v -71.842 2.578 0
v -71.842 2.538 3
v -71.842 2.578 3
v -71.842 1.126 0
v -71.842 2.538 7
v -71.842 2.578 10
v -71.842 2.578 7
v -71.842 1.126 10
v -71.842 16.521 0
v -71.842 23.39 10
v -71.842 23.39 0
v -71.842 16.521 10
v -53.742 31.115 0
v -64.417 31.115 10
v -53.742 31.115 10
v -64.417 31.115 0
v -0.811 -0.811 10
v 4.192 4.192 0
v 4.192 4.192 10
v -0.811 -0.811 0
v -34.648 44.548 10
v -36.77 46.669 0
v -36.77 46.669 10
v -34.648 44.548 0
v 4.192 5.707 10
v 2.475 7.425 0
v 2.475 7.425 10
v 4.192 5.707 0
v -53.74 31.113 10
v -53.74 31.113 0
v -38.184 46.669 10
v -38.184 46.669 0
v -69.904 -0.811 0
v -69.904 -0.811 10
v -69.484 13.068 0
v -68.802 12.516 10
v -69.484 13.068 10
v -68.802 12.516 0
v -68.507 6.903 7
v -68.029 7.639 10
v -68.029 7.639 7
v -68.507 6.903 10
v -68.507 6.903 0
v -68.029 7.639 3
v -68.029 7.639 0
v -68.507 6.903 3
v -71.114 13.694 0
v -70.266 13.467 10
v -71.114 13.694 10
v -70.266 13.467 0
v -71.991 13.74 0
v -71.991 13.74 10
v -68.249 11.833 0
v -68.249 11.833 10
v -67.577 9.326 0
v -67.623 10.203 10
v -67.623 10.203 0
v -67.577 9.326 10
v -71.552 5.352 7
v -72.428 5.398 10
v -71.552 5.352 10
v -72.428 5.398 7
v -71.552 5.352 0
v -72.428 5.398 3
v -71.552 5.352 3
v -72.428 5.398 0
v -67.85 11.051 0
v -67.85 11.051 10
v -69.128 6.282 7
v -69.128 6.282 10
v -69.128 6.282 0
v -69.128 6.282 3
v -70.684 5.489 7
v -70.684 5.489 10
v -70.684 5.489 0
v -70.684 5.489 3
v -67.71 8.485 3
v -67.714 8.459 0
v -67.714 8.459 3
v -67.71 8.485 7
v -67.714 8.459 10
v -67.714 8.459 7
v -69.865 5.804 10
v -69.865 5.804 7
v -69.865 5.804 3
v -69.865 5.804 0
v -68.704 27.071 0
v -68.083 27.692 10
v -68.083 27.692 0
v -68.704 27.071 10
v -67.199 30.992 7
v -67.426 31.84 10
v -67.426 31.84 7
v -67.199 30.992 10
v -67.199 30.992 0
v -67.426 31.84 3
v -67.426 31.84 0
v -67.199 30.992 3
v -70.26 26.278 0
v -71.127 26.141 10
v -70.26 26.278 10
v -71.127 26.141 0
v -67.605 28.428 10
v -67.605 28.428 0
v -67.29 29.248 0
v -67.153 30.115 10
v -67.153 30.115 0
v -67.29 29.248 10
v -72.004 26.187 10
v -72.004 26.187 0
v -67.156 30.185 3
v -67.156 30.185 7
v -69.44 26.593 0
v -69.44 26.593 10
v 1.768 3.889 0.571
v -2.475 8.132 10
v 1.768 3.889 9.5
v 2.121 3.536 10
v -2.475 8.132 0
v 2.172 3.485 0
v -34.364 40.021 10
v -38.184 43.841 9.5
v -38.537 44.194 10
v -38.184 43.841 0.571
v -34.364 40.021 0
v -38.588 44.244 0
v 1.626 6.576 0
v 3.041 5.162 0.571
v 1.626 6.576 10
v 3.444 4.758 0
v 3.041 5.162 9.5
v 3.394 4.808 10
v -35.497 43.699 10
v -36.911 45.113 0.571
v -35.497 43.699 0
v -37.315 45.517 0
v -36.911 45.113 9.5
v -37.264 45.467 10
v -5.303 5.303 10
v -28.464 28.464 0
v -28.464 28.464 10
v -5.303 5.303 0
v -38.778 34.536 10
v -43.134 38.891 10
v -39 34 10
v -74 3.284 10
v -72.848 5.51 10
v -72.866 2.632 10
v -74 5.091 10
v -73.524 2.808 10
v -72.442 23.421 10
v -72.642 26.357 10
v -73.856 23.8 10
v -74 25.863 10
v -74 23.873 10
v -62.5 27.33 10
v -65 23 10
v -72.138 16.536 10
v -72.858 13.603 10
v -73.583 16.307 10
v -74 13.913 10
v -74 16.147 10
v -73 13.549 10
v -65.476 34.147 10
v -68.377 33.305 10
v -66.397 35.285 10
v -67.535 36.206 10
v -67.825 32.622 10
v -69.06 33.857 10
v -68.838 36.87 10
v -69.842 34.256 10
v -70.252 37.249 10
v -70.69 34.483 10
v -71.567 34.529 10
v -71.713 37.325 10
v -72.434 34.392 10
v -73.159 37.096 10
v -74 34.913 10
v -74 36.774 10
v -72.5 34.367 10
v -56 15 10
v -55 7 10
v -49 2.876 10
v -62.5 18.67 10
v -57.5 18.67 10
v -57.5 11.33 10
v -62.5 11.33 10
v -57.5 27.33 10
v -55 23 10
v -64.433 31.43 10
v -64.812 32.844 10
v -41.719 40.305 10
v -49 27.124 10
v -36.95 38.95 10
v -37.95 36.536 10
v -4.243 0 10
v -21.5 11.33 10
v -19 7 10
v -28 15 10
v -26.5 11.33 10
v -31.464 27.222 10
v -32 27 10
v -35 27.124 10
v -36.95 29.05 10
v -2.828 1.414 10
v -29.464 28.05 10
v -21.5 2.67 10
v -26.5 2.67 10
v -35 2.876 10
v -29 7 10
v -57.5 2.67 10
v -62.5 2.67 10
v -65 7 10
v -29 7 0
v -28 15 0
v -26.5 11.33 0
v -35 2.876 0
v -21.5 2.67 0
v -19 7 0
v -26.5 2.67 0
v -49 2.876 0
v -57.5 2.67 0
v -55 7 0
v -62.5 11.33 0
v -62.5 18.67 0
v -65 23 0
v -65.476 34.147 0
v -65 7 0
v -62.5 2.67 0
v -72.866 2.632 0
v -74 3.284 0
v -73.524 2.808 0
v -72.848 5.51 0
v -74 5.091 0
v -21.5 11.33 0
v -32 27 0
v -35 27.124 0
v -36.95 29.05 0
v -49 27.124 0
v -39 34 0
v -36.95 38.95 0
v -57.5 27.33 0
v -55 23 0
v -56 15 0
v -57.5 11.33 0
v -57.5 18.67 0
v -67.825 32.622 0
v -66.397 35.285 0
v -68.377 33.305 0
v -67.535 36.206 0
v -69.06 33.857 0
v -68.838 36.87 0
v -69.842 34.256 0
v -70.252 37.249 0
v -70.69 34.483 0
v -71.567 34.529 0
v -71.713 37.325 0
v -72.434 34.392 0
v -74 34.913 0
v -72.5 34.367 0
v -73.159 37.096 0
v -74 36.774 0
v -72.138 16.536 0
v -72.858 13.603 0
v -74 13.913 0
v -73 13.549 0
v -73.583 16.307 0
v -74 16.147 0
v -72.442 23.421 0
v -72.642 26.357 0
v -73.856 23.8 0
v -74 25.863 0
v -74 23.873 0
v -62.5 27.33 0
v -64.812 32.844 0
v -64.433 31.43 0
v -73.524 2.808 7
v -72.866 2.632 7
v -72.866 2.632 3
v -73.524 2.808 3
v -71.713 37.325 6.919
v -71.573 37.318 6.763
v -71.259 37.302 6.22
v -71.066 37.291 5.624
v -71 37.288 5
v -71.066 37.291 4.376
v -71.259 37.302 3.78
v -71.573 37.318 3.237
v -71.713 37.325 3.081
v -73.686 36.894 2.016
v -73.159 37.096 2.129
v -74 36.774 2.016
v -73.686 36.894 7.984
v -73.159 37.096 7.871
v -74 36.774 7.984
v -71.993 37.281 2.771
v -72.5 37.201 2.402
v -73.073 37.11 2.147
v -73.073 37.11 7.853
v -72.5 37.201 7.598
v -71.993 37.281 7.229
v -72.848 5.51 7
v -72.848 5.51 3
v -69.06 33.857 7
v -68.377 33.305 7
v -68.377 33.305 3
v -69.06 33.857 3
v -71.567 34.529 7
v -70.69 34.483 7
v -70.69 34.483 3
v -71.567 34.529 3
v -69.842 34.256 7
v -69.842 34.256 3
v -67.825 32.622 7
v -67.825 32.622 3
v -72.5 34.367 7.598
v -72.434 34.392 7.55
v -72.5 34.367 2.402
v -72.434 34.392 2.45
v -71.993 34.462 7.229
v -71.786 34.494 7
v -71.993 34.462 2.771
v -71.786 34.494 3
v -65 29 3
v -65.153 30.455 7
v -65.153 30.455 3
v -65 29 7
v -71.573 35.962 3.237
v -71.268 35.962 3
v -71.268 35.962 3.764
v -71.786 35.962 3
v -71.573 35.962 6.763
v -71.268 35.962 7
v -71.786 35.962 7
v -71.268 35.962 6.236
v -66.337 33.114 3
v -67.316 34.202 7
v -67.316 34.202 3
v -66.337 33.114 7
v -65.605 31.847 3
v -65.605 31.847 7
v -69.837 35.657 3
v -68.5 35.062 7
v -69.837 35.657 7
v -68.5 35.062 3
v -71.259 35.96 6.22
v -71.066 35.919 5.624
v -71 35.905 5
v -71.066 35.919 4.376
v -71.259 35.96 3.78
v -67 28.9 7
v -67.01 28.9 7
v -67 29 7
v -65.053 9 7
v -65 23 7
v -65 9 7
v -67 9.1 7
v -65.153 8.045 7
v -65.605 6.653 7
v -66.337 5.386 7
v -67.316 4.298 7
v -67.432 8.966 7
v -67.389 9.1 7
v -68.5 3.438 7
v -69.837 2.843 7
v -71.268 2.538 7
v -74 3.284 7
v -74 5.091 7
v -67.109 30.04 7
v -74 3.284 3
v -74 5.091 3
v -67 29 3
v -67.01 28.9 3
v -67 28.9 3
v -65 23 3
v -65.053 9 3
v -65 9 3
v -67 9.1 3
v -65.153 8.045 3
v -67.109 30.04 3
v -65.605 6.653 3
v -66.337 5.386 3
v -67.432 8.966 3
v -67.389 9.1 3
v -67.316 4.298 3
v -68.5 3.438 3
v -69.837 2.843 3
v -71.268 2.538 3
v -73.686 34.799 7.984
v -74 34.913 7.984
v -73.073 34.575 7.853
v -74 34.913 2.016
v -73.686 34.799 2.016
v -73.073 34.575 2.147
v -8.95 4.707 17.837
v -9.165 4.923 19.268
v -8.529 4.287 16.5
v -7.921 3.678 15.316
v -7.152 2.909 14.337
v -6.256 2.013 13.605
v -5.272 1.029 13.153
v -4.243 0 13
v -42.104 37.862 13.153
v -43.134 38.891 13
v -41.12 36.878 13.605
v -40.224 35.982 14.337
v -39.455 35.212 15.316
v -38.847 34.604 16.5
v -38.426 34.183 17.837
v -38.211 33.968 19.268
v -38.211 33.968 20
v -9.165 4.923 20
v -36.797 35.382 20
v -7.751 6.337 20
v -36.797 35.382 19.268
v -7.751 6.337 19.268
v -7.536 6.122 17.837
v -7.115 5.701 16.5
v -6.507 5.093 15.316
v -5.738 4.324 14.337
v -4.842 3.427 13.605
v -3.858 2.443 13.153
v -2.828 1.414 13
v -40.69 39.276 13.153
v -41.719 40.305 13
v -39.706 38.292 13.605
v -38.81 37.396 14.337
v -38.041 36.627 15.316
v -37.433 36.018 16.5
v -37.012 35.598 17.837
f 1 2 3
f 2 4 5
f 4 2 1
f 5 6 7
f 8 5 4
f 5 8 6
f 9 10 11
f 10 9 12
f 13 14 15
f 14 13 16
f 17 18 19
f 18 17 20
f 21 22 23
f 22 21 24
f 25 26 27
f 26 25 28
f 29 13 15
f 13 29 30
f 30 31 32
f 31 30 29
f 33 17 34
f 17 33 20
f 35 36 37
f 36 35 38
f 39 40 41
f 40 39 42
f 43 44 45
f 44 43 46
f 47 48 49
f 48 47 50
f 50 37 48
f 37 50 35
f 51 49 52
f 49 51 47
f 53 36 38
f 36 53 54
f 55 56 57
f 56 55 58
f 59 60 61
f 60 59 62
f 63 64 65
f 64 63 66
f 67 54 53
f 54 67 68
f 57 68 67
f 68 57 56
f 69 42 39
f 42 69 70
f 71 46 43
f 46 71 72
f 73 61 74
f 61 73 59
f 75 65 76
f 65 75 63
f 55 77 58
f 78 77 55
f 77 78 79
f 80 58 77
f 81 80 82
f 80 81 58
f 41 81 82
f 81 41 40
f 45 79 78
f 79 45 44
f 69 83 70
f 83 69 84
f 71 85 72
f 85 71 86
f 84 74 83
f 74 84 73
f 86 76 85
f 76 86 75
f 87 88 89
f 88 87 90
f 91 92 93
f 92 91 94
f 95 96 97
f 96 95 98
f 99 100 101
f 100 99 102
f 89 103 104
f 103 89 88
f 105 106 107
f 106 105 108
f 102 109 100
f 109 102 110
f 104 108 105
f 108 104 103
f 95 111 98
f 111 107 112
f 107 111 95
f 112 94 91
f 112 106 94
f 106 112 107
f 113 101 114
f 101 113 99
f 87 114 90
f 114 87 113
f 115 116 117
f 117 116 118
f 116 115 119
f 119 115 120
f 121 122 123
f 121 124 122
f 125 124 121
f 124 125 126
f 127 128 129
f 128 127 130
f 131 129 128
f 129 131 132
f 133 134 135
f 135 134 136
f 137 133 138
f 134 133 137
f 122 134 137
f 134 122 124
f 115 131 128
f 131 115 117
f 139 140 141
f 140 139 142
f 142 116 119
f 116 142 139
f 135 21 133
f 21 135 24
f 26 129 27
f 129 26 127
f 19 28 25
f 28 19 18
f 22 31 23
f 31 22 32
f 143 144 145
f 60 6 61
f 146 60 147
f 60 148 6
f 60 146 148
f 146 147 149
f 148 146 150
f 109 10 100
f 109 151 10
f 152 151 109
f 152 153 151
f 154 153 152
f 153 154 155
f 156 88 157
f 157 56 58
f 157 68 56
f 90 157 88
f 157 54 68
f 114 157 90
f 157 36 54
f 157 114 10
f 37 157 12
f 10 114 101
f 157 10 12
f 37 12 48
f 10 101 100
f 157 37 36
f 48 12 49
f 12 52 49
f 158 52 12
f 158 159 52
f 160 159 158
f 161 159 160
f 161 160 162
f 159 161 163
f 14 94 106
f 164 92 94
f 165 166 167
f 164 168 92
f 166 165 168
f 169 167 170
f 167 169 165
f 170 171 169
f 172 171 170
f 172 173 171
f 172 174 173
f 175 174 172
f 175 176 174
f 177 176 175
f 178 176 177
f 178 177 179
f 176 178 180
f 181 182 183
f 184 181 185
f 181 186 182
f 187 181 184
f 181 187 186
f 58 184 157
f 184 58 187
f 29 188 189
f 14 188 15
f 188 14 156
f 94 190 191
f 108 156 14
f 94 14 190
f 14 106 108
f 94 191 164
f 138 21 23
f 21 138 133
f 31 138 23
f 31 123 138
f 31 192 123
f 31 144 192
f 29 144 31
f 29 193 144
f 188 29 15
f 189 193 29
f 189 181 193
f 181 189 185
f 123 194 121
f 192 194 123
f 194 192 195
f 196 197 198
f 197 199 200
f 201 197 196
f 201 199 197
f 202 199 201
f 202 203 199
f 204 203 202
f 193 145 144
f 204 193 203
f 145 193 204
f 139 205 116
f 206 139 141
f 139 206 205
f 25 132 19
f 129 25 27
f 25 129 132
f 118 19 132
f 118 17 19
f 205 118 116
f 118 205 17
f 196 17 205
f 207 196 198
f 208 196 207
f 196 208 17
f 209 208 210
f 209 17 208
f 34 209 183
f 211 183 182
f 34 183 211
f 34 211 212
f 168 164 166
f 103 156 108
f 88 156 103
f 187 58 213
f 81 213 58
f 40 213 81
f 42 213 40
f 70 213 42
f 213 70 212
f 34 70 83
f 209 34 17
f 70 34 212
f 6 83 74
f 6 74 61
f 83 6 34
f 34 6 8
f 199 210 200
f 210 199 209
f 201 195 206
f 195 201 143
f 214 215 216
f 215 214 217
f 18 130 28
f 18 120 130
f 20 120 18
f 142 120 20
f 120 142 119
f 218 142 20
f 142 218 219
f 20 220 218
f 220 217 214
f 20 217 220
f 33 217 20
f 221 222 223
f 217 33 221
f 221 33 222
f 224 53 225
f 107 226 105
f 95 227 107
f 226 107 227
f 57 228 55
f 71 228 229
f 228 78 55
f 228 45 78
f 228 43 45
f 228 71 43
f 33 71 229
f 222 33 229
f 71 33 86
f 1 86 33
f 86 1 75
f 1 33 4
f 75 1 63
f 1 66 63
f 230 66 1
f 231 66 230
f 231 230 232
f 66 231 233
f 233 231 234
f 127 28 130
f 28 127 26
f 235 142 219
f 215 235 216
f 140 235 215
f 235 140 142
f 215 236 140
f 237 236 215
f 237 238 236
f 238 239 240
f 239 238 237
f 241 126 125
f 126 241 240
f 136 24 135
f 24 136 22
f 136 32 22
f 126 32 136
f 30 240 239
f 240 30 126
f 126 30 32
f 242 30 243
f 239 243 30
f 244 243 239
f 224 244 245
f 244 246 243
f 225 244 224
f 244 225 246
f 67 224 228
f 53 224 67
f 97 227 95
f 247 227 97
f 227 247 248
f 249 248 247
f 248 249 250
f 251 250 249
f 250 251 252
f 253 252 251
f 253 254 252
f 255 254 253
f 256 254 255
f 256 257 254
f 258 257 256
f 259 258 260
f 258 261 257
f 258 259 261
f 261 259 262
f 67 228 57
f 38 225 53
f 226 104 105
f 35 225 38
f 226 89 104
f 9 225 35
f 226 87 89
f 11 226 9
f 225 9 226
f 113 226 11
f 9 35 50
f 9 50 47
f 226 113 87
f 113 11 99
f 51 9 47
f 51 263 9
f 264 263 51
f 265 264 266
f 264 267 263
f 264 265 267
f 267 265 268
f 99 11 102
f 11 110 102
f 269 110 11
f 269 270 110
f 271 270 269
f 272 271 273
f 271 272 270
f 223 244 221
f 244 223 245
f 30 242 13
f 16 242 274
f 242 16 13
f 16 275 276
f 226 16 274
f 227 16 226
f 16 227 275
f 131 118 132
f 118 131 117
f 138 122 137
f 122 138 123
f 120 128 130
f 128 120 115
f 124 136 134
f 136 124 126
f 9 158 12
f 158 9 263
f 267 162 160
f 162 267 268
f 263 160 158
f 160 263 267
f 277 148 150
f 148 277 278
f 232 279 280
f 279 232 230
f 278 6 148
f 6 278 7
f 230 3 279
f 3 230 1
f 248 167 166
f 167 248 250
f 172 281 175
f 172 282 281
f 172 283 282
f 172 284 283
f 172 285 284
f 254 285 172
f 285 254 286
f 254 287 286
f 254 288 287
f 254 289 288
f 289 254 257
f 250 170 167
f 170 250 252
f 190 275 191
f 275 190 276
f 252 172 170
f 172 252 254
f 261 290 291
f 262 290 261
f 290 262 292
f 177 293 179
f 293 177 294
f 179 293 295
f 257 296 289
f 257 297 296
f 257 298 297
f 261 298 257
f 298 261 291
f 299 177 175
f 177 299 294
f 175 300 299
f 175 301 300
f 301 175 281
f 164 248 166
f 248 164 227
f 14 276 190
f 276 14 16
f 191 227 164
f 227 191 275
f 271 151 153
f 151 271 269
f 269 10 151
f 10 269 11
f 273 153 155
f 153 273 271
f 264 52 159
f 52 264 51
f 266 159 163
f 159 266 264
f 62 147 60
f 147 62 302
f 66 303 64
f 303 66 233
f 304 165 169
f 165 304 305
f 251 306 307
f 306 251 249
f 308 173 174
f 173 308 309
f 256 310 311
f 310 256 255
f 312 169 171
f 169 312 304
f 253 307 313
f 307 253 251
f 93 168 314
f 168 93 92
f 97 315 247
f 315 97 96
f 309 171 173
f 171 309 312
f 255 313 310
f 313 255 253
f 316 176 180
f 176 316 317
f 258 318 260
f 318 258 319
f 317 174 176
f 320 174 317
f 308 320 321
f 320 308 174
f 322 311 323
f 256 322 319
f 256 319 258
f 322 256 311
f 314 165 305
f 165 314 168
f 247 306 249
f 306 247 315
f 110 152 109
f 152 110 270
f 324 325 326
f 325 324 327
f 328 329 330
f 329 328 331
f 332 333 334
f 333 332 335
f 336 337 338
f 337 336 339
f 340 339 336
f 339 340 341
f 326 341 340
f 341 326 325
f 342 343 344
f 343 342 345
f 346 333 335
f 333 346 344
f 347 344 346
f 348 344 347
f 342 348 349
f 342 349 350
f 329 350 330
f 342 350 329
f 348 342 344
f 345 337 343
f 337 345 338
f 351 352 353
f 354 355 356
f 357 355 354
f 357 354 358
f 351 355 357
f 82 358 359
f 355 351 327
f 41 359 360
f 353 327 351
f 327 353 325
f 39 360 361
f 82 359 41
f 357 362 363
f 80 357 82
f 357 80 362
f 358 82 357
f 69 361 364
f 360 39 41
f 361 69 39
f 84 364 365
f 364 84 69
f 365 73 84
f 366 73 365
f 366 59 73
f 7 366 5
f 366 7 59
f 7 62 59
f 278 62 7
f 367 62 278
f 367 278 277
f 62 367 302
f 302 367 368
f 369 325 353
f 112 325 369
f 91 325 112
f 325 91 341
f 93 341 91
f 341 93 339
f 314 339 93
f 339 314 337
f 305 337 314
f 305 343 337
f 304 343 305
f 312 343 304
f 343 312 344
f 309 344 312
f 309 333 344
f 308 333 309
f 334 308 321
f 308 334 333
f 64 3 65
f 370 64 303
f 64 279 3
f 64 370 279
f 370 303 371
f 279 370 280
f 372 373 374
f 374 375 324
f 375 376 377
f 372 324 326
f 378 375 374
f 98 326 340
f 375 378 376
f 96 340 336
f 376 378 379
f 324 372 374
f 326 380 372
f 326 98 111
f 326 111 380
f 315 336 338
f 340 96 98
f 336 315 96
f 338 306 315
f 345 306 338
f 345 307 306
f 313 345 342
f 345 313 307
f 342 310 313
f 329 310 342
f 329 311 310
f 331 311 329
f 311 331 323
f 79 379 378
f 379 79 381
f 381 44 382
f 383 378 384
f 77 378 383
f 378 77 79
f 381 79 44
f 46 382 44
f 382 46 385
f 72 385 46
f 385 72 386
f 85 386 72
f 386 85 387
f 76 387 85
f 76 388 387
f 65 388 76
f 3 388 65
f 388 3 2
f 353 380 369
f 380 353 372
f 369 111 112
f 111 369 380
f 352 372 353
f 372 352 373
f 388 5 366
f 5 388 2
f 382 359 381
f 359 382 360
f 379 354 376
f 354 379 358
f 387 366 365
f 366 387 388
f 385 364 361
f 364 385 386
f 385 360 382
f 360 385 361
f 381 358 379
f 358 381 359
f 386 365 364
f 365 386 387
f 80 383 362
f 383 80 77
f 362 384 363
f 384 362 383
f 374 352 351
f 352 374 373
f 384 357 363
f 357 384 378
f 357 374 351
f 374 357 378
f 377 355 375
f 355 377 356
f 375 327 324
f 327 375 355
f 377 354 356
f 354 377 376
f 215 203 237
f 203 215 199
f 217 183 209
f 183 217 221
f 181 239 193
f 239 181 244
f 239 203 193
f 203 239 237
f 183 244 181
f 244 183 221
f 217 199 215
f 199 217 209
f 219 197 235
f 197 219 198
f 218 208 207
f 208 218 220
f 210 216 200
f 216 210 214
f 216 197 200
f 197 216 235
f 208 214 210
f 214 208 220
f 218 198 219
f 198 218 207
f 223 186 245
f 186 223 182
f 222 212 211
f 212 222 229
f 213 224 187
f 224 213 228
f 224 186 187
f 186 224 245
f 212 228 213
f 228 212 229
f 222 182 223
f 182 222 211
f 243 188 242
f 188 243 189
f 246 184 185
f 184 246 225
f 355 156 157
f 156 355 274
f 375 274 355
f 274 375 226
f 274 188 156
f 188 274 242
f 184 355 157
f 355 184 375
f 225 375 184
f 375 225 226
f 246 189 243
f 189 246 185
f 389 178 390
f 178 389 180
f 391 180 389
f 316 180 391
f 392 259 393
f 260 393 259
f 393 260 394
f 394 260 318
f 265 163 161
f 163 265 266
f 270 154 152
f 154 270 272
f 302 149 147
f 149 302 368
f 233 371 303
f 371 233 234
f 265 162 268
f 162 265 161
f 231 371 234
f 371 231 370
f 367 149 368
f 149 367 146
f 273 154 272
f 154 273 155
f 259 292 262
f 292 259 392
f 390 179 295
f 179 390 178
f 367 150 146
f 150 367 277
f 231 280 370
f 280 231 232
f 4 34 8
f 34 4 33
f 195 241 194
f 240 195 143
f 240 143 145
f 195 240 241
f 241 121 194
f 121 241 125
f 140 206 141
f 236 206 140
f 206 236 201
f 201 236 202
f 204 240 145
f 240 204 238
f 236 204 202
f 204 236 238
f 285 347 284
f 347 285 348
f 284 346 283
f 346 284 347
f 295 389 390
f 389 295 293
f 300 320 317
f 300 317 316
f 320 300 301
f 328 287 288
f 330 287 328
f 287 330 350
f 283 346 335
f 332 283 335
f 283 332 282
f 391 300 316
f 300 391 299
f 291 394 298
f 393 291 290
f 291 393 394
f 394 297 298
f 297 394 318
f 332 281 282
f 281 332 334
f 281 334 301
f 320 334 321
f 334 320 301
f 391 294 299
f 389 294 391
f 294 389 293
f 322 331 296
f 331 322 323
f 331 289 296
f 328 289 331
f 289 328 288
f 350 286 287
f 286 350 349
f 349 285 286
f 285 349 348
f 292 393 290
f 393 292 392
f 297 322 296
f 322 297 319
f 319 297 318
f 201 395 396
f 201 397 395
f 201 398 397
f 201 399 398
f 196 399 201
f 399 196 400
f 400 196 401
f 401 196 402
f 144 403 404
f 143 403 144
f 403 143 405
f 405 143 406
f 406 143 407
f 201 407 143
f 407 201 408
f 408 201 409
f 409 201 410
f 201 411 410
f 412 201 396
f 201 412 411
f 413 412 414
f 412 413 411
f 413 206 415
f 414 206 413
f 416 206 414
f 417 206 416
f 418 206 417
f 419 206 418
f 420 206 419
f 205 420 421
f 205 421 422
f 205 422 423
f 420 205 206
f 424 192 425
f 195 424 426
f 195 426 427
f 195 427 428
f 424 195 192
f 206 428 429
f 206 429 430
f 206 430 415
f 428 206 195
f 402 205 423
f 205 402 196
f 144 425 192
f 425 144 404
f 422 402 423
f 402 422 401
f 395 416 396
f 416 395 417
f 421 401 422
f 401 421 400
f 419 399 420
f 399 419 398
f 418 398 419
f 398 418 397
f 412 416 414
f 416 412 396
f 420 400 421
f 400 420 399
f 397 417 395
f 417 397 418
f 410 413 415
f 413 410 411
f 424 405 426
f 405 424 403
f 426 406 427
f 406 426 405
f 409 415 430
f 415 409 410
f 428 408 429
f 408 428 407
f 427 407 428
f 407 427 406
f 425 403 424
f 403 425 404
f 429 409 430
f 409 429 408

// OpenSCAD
// file: lcd-support-A.scad
// PRUSA iteration3
// lcd-support-A
// GNU GPL v3
// Josef Průša <iam@josefprusa.cz> and contributors
// http://www.reprap.org/wiki/Prusa_Mendel
// http://prusamendel.org




module body(){

difference() {
    
    union(){
        translate( [ -55, -2 , 0 ] ) cube( [ 69 , 81 , 10 ] ); 
    }
    
    union (){

    // outer body shape
    translate( [ -69.6, 32, -1 ] ) rotate([0,0,45]) cube( [ 60 , 53 , 15 ] ); 
    translate( [ 13.7, 89.7, -1 ] ) rotate([0,0,135]) cube( [ 60 , 42 , 15 ] );
    translate( [ -19, -9, -1 ] ) cube( [ 60 , 9 , 15 ] );   
    translate( [ 7, -3, -1 ] ) cube( [ 60 , 68 , 16 ] );  
    translate( [ -16, 60, -1 ] ) cube( [ 60 , 50 , 15 ] );
    translate( [ -41, -45, -1 ] ) rotate([0,0,45]) cube( [ 60 , 80 , 13 ] );  
        
    // threaded rods opening
    translate( [ -44 , 57.5 , -1 ] ) cylinder( h = 17, r = 4.2, $fn=30);  
    translate( [ -29 , 71.9 , -1 ] ) cylinder( h = 17, r = 4.2, $fn=30);  

    // pcb cout out
    translate( [ 4 , 1.5 , -1 ] ) cube( [ 1.8 , 56.5 , 17 ] ); 
    translate( [ 0 , 7.5 , -1 ] ) cube( [ 5.8 , 44.5 , 17 ] ); 
    translate( [ 4.8 , 3.5 , -1 ] ) cube( [ 5.8 , 52.5 , 17 ] );

    translate( [ 8 , -5 , -1 ] ) rotate([0,0,45]) cube( [ 5 , 5 , 17 ] );
    translate( [ 8 , 58 , -1 ] ) rotate([0,0,45]) cube( [ 5 , 5 , 17 ] );
        
    }

    // pcb inserts
    translate( [ 4, 3 , 8 ] ) rotate([45,0,0]) cube( [ 1.8 , 5 , 5 ] ); 
    translate( [ 4, 56.5 , 8 ] ) rotate([45,0,0]) cube( [ 1.8 , 5 , 5 ] );     
    translate( [ 4, 3 , -5 ] ) rotate([45,0,0]) cube( [ 1.8 , 5 , 5 ] ); 
    translate( [ 4, 56.5 , -5 ] ) rotate([45,0,0]) cube( [ 1.8 , 5 , 5 ] );     
    
}

 
difference(){
    union(){
        translate( [ -44 , 57.5 , 0 ] ) cylinder( h = 10, r = 7, $fn=30); 
        translate( [ -29 , 71.9 , 0 ] ) cylinder( h = 10, r =7 , $fn=30); 
    }
        translate( [ -44 , 57.5 , -1 ] ) cylinder( h = 17, r = 4.2, $fn=30);
        translate( [ -29 , 71.9 , -1 ] ) cylinder( h = 17, r = 4.2, $fn=30);
}
}



module ziptie()
{
difference()
{
  union(){
    difference(){
        translate( [ -72 , 29 , 3 ] ) cylinder( h = 4, r = 7, $fn=30);
        translate( [ -72 , 29 , 3 ] ) cylinder( h = 4, r = 5, $fn=30);
    }
    difference(){
        translate( [ -72 , 9.5 , 3 ] ) cylinder( h = 4, r = 7, $fn=30);
        translate( [ -72 , 11 , 3 ] ) cylinder( h = 4, r = 5, $fn=30); 
    }
    }
    translate( [ -80 , 9.1 , 3 ] )  cube( [ 15 , 19.8 , 4 ] );  
    }
    
    translate( [ -67 , 9 , 3 ] )  cube( [ 2 , 20 , 4 ] ); 
}
    




difference() {
    
rotate([0,0,45]) body();

// lightening holes
translate( [ -42 , 15 , -1 ] ) cylinder( h = 15, r = 14, $fn=6);  
translate( [ -24 , 7 , -1 ] ) cylinder( h = 15, r = 5, $fn=6);  
translate( [ -60 , 7 , -1 ] ) cylinder( h = 15, r = 5, $fn=6);  
translate( [ -60 , 23 , -1 ] ) cylinder( h = 15, r = 5, $fn=6);  
    
// threaded rods corners
translate( [ -71 , 28.5 , -1 ] ) rotate([0,0,70]) cube( [ 5 , 10 , 15 ] );   
translate( [ -71 , 7.5 , -1 ] ) rotate([0,0,70]) cube( [ 5 , 10 , 15 ] );      
translate( [ -80 , 29, -1 ] ) rotate([0,0,-70]) cube( [ 5 , 10 , 15 ] );   
translate( [ -82 , 7.5 , -1 ] ) rotate([0,0,-70]) cube( [ 5 , 10 , 15 ] );      
translate( [ -86 , 0 , -1 ] ) cube( [ 12 , 50 , 15 ] );  
translate( [ -83 , -16 , -1 ] ) rotate([0,0,45]) cube( [ 20 , 20 , 15 ] );  
    
//translate( [-35, 27, -1] ) cube ( [12, 10, 15] );
translate( [-32, 34, -1] ) cylinder( h=15, r=7, $fn=8 );

ziptie();
// ziptie head cutout
translate( [ -74 , 38 , 5 ] ) rotate([90,0,0]) cylinder( h = 5, r = 3, $fn=30);  
    


}
// main file
// PRUSA iteration3
// lcd-support-B
// GNU GPL v3
// Josef Průša <iam@josefprusa.cz> and contributors
// http://www.reprap.org/wiki/Prusa_Mendel
// http://prusamendel.org

include<lcd-support-A.scad>;

//SD card cover
difference() {
  union() { 
    rotate([0,0,45]) difference(){
        translate( [ -3 , 3 , 10 ] )  cube( [ 2 , 55 , 10 ] ); 
        translate( [ -4 , 3 , 20 ] ) rotate([0,90,0]) cylinder( h = 4, r = 7, $fn=30); 
        translate( [ -4 , 58 , 20 ] ) rotate([0,90,0]) cylinder( h = 4, r = 7, $fn=30); 

    }
  }
   
  
  
}
